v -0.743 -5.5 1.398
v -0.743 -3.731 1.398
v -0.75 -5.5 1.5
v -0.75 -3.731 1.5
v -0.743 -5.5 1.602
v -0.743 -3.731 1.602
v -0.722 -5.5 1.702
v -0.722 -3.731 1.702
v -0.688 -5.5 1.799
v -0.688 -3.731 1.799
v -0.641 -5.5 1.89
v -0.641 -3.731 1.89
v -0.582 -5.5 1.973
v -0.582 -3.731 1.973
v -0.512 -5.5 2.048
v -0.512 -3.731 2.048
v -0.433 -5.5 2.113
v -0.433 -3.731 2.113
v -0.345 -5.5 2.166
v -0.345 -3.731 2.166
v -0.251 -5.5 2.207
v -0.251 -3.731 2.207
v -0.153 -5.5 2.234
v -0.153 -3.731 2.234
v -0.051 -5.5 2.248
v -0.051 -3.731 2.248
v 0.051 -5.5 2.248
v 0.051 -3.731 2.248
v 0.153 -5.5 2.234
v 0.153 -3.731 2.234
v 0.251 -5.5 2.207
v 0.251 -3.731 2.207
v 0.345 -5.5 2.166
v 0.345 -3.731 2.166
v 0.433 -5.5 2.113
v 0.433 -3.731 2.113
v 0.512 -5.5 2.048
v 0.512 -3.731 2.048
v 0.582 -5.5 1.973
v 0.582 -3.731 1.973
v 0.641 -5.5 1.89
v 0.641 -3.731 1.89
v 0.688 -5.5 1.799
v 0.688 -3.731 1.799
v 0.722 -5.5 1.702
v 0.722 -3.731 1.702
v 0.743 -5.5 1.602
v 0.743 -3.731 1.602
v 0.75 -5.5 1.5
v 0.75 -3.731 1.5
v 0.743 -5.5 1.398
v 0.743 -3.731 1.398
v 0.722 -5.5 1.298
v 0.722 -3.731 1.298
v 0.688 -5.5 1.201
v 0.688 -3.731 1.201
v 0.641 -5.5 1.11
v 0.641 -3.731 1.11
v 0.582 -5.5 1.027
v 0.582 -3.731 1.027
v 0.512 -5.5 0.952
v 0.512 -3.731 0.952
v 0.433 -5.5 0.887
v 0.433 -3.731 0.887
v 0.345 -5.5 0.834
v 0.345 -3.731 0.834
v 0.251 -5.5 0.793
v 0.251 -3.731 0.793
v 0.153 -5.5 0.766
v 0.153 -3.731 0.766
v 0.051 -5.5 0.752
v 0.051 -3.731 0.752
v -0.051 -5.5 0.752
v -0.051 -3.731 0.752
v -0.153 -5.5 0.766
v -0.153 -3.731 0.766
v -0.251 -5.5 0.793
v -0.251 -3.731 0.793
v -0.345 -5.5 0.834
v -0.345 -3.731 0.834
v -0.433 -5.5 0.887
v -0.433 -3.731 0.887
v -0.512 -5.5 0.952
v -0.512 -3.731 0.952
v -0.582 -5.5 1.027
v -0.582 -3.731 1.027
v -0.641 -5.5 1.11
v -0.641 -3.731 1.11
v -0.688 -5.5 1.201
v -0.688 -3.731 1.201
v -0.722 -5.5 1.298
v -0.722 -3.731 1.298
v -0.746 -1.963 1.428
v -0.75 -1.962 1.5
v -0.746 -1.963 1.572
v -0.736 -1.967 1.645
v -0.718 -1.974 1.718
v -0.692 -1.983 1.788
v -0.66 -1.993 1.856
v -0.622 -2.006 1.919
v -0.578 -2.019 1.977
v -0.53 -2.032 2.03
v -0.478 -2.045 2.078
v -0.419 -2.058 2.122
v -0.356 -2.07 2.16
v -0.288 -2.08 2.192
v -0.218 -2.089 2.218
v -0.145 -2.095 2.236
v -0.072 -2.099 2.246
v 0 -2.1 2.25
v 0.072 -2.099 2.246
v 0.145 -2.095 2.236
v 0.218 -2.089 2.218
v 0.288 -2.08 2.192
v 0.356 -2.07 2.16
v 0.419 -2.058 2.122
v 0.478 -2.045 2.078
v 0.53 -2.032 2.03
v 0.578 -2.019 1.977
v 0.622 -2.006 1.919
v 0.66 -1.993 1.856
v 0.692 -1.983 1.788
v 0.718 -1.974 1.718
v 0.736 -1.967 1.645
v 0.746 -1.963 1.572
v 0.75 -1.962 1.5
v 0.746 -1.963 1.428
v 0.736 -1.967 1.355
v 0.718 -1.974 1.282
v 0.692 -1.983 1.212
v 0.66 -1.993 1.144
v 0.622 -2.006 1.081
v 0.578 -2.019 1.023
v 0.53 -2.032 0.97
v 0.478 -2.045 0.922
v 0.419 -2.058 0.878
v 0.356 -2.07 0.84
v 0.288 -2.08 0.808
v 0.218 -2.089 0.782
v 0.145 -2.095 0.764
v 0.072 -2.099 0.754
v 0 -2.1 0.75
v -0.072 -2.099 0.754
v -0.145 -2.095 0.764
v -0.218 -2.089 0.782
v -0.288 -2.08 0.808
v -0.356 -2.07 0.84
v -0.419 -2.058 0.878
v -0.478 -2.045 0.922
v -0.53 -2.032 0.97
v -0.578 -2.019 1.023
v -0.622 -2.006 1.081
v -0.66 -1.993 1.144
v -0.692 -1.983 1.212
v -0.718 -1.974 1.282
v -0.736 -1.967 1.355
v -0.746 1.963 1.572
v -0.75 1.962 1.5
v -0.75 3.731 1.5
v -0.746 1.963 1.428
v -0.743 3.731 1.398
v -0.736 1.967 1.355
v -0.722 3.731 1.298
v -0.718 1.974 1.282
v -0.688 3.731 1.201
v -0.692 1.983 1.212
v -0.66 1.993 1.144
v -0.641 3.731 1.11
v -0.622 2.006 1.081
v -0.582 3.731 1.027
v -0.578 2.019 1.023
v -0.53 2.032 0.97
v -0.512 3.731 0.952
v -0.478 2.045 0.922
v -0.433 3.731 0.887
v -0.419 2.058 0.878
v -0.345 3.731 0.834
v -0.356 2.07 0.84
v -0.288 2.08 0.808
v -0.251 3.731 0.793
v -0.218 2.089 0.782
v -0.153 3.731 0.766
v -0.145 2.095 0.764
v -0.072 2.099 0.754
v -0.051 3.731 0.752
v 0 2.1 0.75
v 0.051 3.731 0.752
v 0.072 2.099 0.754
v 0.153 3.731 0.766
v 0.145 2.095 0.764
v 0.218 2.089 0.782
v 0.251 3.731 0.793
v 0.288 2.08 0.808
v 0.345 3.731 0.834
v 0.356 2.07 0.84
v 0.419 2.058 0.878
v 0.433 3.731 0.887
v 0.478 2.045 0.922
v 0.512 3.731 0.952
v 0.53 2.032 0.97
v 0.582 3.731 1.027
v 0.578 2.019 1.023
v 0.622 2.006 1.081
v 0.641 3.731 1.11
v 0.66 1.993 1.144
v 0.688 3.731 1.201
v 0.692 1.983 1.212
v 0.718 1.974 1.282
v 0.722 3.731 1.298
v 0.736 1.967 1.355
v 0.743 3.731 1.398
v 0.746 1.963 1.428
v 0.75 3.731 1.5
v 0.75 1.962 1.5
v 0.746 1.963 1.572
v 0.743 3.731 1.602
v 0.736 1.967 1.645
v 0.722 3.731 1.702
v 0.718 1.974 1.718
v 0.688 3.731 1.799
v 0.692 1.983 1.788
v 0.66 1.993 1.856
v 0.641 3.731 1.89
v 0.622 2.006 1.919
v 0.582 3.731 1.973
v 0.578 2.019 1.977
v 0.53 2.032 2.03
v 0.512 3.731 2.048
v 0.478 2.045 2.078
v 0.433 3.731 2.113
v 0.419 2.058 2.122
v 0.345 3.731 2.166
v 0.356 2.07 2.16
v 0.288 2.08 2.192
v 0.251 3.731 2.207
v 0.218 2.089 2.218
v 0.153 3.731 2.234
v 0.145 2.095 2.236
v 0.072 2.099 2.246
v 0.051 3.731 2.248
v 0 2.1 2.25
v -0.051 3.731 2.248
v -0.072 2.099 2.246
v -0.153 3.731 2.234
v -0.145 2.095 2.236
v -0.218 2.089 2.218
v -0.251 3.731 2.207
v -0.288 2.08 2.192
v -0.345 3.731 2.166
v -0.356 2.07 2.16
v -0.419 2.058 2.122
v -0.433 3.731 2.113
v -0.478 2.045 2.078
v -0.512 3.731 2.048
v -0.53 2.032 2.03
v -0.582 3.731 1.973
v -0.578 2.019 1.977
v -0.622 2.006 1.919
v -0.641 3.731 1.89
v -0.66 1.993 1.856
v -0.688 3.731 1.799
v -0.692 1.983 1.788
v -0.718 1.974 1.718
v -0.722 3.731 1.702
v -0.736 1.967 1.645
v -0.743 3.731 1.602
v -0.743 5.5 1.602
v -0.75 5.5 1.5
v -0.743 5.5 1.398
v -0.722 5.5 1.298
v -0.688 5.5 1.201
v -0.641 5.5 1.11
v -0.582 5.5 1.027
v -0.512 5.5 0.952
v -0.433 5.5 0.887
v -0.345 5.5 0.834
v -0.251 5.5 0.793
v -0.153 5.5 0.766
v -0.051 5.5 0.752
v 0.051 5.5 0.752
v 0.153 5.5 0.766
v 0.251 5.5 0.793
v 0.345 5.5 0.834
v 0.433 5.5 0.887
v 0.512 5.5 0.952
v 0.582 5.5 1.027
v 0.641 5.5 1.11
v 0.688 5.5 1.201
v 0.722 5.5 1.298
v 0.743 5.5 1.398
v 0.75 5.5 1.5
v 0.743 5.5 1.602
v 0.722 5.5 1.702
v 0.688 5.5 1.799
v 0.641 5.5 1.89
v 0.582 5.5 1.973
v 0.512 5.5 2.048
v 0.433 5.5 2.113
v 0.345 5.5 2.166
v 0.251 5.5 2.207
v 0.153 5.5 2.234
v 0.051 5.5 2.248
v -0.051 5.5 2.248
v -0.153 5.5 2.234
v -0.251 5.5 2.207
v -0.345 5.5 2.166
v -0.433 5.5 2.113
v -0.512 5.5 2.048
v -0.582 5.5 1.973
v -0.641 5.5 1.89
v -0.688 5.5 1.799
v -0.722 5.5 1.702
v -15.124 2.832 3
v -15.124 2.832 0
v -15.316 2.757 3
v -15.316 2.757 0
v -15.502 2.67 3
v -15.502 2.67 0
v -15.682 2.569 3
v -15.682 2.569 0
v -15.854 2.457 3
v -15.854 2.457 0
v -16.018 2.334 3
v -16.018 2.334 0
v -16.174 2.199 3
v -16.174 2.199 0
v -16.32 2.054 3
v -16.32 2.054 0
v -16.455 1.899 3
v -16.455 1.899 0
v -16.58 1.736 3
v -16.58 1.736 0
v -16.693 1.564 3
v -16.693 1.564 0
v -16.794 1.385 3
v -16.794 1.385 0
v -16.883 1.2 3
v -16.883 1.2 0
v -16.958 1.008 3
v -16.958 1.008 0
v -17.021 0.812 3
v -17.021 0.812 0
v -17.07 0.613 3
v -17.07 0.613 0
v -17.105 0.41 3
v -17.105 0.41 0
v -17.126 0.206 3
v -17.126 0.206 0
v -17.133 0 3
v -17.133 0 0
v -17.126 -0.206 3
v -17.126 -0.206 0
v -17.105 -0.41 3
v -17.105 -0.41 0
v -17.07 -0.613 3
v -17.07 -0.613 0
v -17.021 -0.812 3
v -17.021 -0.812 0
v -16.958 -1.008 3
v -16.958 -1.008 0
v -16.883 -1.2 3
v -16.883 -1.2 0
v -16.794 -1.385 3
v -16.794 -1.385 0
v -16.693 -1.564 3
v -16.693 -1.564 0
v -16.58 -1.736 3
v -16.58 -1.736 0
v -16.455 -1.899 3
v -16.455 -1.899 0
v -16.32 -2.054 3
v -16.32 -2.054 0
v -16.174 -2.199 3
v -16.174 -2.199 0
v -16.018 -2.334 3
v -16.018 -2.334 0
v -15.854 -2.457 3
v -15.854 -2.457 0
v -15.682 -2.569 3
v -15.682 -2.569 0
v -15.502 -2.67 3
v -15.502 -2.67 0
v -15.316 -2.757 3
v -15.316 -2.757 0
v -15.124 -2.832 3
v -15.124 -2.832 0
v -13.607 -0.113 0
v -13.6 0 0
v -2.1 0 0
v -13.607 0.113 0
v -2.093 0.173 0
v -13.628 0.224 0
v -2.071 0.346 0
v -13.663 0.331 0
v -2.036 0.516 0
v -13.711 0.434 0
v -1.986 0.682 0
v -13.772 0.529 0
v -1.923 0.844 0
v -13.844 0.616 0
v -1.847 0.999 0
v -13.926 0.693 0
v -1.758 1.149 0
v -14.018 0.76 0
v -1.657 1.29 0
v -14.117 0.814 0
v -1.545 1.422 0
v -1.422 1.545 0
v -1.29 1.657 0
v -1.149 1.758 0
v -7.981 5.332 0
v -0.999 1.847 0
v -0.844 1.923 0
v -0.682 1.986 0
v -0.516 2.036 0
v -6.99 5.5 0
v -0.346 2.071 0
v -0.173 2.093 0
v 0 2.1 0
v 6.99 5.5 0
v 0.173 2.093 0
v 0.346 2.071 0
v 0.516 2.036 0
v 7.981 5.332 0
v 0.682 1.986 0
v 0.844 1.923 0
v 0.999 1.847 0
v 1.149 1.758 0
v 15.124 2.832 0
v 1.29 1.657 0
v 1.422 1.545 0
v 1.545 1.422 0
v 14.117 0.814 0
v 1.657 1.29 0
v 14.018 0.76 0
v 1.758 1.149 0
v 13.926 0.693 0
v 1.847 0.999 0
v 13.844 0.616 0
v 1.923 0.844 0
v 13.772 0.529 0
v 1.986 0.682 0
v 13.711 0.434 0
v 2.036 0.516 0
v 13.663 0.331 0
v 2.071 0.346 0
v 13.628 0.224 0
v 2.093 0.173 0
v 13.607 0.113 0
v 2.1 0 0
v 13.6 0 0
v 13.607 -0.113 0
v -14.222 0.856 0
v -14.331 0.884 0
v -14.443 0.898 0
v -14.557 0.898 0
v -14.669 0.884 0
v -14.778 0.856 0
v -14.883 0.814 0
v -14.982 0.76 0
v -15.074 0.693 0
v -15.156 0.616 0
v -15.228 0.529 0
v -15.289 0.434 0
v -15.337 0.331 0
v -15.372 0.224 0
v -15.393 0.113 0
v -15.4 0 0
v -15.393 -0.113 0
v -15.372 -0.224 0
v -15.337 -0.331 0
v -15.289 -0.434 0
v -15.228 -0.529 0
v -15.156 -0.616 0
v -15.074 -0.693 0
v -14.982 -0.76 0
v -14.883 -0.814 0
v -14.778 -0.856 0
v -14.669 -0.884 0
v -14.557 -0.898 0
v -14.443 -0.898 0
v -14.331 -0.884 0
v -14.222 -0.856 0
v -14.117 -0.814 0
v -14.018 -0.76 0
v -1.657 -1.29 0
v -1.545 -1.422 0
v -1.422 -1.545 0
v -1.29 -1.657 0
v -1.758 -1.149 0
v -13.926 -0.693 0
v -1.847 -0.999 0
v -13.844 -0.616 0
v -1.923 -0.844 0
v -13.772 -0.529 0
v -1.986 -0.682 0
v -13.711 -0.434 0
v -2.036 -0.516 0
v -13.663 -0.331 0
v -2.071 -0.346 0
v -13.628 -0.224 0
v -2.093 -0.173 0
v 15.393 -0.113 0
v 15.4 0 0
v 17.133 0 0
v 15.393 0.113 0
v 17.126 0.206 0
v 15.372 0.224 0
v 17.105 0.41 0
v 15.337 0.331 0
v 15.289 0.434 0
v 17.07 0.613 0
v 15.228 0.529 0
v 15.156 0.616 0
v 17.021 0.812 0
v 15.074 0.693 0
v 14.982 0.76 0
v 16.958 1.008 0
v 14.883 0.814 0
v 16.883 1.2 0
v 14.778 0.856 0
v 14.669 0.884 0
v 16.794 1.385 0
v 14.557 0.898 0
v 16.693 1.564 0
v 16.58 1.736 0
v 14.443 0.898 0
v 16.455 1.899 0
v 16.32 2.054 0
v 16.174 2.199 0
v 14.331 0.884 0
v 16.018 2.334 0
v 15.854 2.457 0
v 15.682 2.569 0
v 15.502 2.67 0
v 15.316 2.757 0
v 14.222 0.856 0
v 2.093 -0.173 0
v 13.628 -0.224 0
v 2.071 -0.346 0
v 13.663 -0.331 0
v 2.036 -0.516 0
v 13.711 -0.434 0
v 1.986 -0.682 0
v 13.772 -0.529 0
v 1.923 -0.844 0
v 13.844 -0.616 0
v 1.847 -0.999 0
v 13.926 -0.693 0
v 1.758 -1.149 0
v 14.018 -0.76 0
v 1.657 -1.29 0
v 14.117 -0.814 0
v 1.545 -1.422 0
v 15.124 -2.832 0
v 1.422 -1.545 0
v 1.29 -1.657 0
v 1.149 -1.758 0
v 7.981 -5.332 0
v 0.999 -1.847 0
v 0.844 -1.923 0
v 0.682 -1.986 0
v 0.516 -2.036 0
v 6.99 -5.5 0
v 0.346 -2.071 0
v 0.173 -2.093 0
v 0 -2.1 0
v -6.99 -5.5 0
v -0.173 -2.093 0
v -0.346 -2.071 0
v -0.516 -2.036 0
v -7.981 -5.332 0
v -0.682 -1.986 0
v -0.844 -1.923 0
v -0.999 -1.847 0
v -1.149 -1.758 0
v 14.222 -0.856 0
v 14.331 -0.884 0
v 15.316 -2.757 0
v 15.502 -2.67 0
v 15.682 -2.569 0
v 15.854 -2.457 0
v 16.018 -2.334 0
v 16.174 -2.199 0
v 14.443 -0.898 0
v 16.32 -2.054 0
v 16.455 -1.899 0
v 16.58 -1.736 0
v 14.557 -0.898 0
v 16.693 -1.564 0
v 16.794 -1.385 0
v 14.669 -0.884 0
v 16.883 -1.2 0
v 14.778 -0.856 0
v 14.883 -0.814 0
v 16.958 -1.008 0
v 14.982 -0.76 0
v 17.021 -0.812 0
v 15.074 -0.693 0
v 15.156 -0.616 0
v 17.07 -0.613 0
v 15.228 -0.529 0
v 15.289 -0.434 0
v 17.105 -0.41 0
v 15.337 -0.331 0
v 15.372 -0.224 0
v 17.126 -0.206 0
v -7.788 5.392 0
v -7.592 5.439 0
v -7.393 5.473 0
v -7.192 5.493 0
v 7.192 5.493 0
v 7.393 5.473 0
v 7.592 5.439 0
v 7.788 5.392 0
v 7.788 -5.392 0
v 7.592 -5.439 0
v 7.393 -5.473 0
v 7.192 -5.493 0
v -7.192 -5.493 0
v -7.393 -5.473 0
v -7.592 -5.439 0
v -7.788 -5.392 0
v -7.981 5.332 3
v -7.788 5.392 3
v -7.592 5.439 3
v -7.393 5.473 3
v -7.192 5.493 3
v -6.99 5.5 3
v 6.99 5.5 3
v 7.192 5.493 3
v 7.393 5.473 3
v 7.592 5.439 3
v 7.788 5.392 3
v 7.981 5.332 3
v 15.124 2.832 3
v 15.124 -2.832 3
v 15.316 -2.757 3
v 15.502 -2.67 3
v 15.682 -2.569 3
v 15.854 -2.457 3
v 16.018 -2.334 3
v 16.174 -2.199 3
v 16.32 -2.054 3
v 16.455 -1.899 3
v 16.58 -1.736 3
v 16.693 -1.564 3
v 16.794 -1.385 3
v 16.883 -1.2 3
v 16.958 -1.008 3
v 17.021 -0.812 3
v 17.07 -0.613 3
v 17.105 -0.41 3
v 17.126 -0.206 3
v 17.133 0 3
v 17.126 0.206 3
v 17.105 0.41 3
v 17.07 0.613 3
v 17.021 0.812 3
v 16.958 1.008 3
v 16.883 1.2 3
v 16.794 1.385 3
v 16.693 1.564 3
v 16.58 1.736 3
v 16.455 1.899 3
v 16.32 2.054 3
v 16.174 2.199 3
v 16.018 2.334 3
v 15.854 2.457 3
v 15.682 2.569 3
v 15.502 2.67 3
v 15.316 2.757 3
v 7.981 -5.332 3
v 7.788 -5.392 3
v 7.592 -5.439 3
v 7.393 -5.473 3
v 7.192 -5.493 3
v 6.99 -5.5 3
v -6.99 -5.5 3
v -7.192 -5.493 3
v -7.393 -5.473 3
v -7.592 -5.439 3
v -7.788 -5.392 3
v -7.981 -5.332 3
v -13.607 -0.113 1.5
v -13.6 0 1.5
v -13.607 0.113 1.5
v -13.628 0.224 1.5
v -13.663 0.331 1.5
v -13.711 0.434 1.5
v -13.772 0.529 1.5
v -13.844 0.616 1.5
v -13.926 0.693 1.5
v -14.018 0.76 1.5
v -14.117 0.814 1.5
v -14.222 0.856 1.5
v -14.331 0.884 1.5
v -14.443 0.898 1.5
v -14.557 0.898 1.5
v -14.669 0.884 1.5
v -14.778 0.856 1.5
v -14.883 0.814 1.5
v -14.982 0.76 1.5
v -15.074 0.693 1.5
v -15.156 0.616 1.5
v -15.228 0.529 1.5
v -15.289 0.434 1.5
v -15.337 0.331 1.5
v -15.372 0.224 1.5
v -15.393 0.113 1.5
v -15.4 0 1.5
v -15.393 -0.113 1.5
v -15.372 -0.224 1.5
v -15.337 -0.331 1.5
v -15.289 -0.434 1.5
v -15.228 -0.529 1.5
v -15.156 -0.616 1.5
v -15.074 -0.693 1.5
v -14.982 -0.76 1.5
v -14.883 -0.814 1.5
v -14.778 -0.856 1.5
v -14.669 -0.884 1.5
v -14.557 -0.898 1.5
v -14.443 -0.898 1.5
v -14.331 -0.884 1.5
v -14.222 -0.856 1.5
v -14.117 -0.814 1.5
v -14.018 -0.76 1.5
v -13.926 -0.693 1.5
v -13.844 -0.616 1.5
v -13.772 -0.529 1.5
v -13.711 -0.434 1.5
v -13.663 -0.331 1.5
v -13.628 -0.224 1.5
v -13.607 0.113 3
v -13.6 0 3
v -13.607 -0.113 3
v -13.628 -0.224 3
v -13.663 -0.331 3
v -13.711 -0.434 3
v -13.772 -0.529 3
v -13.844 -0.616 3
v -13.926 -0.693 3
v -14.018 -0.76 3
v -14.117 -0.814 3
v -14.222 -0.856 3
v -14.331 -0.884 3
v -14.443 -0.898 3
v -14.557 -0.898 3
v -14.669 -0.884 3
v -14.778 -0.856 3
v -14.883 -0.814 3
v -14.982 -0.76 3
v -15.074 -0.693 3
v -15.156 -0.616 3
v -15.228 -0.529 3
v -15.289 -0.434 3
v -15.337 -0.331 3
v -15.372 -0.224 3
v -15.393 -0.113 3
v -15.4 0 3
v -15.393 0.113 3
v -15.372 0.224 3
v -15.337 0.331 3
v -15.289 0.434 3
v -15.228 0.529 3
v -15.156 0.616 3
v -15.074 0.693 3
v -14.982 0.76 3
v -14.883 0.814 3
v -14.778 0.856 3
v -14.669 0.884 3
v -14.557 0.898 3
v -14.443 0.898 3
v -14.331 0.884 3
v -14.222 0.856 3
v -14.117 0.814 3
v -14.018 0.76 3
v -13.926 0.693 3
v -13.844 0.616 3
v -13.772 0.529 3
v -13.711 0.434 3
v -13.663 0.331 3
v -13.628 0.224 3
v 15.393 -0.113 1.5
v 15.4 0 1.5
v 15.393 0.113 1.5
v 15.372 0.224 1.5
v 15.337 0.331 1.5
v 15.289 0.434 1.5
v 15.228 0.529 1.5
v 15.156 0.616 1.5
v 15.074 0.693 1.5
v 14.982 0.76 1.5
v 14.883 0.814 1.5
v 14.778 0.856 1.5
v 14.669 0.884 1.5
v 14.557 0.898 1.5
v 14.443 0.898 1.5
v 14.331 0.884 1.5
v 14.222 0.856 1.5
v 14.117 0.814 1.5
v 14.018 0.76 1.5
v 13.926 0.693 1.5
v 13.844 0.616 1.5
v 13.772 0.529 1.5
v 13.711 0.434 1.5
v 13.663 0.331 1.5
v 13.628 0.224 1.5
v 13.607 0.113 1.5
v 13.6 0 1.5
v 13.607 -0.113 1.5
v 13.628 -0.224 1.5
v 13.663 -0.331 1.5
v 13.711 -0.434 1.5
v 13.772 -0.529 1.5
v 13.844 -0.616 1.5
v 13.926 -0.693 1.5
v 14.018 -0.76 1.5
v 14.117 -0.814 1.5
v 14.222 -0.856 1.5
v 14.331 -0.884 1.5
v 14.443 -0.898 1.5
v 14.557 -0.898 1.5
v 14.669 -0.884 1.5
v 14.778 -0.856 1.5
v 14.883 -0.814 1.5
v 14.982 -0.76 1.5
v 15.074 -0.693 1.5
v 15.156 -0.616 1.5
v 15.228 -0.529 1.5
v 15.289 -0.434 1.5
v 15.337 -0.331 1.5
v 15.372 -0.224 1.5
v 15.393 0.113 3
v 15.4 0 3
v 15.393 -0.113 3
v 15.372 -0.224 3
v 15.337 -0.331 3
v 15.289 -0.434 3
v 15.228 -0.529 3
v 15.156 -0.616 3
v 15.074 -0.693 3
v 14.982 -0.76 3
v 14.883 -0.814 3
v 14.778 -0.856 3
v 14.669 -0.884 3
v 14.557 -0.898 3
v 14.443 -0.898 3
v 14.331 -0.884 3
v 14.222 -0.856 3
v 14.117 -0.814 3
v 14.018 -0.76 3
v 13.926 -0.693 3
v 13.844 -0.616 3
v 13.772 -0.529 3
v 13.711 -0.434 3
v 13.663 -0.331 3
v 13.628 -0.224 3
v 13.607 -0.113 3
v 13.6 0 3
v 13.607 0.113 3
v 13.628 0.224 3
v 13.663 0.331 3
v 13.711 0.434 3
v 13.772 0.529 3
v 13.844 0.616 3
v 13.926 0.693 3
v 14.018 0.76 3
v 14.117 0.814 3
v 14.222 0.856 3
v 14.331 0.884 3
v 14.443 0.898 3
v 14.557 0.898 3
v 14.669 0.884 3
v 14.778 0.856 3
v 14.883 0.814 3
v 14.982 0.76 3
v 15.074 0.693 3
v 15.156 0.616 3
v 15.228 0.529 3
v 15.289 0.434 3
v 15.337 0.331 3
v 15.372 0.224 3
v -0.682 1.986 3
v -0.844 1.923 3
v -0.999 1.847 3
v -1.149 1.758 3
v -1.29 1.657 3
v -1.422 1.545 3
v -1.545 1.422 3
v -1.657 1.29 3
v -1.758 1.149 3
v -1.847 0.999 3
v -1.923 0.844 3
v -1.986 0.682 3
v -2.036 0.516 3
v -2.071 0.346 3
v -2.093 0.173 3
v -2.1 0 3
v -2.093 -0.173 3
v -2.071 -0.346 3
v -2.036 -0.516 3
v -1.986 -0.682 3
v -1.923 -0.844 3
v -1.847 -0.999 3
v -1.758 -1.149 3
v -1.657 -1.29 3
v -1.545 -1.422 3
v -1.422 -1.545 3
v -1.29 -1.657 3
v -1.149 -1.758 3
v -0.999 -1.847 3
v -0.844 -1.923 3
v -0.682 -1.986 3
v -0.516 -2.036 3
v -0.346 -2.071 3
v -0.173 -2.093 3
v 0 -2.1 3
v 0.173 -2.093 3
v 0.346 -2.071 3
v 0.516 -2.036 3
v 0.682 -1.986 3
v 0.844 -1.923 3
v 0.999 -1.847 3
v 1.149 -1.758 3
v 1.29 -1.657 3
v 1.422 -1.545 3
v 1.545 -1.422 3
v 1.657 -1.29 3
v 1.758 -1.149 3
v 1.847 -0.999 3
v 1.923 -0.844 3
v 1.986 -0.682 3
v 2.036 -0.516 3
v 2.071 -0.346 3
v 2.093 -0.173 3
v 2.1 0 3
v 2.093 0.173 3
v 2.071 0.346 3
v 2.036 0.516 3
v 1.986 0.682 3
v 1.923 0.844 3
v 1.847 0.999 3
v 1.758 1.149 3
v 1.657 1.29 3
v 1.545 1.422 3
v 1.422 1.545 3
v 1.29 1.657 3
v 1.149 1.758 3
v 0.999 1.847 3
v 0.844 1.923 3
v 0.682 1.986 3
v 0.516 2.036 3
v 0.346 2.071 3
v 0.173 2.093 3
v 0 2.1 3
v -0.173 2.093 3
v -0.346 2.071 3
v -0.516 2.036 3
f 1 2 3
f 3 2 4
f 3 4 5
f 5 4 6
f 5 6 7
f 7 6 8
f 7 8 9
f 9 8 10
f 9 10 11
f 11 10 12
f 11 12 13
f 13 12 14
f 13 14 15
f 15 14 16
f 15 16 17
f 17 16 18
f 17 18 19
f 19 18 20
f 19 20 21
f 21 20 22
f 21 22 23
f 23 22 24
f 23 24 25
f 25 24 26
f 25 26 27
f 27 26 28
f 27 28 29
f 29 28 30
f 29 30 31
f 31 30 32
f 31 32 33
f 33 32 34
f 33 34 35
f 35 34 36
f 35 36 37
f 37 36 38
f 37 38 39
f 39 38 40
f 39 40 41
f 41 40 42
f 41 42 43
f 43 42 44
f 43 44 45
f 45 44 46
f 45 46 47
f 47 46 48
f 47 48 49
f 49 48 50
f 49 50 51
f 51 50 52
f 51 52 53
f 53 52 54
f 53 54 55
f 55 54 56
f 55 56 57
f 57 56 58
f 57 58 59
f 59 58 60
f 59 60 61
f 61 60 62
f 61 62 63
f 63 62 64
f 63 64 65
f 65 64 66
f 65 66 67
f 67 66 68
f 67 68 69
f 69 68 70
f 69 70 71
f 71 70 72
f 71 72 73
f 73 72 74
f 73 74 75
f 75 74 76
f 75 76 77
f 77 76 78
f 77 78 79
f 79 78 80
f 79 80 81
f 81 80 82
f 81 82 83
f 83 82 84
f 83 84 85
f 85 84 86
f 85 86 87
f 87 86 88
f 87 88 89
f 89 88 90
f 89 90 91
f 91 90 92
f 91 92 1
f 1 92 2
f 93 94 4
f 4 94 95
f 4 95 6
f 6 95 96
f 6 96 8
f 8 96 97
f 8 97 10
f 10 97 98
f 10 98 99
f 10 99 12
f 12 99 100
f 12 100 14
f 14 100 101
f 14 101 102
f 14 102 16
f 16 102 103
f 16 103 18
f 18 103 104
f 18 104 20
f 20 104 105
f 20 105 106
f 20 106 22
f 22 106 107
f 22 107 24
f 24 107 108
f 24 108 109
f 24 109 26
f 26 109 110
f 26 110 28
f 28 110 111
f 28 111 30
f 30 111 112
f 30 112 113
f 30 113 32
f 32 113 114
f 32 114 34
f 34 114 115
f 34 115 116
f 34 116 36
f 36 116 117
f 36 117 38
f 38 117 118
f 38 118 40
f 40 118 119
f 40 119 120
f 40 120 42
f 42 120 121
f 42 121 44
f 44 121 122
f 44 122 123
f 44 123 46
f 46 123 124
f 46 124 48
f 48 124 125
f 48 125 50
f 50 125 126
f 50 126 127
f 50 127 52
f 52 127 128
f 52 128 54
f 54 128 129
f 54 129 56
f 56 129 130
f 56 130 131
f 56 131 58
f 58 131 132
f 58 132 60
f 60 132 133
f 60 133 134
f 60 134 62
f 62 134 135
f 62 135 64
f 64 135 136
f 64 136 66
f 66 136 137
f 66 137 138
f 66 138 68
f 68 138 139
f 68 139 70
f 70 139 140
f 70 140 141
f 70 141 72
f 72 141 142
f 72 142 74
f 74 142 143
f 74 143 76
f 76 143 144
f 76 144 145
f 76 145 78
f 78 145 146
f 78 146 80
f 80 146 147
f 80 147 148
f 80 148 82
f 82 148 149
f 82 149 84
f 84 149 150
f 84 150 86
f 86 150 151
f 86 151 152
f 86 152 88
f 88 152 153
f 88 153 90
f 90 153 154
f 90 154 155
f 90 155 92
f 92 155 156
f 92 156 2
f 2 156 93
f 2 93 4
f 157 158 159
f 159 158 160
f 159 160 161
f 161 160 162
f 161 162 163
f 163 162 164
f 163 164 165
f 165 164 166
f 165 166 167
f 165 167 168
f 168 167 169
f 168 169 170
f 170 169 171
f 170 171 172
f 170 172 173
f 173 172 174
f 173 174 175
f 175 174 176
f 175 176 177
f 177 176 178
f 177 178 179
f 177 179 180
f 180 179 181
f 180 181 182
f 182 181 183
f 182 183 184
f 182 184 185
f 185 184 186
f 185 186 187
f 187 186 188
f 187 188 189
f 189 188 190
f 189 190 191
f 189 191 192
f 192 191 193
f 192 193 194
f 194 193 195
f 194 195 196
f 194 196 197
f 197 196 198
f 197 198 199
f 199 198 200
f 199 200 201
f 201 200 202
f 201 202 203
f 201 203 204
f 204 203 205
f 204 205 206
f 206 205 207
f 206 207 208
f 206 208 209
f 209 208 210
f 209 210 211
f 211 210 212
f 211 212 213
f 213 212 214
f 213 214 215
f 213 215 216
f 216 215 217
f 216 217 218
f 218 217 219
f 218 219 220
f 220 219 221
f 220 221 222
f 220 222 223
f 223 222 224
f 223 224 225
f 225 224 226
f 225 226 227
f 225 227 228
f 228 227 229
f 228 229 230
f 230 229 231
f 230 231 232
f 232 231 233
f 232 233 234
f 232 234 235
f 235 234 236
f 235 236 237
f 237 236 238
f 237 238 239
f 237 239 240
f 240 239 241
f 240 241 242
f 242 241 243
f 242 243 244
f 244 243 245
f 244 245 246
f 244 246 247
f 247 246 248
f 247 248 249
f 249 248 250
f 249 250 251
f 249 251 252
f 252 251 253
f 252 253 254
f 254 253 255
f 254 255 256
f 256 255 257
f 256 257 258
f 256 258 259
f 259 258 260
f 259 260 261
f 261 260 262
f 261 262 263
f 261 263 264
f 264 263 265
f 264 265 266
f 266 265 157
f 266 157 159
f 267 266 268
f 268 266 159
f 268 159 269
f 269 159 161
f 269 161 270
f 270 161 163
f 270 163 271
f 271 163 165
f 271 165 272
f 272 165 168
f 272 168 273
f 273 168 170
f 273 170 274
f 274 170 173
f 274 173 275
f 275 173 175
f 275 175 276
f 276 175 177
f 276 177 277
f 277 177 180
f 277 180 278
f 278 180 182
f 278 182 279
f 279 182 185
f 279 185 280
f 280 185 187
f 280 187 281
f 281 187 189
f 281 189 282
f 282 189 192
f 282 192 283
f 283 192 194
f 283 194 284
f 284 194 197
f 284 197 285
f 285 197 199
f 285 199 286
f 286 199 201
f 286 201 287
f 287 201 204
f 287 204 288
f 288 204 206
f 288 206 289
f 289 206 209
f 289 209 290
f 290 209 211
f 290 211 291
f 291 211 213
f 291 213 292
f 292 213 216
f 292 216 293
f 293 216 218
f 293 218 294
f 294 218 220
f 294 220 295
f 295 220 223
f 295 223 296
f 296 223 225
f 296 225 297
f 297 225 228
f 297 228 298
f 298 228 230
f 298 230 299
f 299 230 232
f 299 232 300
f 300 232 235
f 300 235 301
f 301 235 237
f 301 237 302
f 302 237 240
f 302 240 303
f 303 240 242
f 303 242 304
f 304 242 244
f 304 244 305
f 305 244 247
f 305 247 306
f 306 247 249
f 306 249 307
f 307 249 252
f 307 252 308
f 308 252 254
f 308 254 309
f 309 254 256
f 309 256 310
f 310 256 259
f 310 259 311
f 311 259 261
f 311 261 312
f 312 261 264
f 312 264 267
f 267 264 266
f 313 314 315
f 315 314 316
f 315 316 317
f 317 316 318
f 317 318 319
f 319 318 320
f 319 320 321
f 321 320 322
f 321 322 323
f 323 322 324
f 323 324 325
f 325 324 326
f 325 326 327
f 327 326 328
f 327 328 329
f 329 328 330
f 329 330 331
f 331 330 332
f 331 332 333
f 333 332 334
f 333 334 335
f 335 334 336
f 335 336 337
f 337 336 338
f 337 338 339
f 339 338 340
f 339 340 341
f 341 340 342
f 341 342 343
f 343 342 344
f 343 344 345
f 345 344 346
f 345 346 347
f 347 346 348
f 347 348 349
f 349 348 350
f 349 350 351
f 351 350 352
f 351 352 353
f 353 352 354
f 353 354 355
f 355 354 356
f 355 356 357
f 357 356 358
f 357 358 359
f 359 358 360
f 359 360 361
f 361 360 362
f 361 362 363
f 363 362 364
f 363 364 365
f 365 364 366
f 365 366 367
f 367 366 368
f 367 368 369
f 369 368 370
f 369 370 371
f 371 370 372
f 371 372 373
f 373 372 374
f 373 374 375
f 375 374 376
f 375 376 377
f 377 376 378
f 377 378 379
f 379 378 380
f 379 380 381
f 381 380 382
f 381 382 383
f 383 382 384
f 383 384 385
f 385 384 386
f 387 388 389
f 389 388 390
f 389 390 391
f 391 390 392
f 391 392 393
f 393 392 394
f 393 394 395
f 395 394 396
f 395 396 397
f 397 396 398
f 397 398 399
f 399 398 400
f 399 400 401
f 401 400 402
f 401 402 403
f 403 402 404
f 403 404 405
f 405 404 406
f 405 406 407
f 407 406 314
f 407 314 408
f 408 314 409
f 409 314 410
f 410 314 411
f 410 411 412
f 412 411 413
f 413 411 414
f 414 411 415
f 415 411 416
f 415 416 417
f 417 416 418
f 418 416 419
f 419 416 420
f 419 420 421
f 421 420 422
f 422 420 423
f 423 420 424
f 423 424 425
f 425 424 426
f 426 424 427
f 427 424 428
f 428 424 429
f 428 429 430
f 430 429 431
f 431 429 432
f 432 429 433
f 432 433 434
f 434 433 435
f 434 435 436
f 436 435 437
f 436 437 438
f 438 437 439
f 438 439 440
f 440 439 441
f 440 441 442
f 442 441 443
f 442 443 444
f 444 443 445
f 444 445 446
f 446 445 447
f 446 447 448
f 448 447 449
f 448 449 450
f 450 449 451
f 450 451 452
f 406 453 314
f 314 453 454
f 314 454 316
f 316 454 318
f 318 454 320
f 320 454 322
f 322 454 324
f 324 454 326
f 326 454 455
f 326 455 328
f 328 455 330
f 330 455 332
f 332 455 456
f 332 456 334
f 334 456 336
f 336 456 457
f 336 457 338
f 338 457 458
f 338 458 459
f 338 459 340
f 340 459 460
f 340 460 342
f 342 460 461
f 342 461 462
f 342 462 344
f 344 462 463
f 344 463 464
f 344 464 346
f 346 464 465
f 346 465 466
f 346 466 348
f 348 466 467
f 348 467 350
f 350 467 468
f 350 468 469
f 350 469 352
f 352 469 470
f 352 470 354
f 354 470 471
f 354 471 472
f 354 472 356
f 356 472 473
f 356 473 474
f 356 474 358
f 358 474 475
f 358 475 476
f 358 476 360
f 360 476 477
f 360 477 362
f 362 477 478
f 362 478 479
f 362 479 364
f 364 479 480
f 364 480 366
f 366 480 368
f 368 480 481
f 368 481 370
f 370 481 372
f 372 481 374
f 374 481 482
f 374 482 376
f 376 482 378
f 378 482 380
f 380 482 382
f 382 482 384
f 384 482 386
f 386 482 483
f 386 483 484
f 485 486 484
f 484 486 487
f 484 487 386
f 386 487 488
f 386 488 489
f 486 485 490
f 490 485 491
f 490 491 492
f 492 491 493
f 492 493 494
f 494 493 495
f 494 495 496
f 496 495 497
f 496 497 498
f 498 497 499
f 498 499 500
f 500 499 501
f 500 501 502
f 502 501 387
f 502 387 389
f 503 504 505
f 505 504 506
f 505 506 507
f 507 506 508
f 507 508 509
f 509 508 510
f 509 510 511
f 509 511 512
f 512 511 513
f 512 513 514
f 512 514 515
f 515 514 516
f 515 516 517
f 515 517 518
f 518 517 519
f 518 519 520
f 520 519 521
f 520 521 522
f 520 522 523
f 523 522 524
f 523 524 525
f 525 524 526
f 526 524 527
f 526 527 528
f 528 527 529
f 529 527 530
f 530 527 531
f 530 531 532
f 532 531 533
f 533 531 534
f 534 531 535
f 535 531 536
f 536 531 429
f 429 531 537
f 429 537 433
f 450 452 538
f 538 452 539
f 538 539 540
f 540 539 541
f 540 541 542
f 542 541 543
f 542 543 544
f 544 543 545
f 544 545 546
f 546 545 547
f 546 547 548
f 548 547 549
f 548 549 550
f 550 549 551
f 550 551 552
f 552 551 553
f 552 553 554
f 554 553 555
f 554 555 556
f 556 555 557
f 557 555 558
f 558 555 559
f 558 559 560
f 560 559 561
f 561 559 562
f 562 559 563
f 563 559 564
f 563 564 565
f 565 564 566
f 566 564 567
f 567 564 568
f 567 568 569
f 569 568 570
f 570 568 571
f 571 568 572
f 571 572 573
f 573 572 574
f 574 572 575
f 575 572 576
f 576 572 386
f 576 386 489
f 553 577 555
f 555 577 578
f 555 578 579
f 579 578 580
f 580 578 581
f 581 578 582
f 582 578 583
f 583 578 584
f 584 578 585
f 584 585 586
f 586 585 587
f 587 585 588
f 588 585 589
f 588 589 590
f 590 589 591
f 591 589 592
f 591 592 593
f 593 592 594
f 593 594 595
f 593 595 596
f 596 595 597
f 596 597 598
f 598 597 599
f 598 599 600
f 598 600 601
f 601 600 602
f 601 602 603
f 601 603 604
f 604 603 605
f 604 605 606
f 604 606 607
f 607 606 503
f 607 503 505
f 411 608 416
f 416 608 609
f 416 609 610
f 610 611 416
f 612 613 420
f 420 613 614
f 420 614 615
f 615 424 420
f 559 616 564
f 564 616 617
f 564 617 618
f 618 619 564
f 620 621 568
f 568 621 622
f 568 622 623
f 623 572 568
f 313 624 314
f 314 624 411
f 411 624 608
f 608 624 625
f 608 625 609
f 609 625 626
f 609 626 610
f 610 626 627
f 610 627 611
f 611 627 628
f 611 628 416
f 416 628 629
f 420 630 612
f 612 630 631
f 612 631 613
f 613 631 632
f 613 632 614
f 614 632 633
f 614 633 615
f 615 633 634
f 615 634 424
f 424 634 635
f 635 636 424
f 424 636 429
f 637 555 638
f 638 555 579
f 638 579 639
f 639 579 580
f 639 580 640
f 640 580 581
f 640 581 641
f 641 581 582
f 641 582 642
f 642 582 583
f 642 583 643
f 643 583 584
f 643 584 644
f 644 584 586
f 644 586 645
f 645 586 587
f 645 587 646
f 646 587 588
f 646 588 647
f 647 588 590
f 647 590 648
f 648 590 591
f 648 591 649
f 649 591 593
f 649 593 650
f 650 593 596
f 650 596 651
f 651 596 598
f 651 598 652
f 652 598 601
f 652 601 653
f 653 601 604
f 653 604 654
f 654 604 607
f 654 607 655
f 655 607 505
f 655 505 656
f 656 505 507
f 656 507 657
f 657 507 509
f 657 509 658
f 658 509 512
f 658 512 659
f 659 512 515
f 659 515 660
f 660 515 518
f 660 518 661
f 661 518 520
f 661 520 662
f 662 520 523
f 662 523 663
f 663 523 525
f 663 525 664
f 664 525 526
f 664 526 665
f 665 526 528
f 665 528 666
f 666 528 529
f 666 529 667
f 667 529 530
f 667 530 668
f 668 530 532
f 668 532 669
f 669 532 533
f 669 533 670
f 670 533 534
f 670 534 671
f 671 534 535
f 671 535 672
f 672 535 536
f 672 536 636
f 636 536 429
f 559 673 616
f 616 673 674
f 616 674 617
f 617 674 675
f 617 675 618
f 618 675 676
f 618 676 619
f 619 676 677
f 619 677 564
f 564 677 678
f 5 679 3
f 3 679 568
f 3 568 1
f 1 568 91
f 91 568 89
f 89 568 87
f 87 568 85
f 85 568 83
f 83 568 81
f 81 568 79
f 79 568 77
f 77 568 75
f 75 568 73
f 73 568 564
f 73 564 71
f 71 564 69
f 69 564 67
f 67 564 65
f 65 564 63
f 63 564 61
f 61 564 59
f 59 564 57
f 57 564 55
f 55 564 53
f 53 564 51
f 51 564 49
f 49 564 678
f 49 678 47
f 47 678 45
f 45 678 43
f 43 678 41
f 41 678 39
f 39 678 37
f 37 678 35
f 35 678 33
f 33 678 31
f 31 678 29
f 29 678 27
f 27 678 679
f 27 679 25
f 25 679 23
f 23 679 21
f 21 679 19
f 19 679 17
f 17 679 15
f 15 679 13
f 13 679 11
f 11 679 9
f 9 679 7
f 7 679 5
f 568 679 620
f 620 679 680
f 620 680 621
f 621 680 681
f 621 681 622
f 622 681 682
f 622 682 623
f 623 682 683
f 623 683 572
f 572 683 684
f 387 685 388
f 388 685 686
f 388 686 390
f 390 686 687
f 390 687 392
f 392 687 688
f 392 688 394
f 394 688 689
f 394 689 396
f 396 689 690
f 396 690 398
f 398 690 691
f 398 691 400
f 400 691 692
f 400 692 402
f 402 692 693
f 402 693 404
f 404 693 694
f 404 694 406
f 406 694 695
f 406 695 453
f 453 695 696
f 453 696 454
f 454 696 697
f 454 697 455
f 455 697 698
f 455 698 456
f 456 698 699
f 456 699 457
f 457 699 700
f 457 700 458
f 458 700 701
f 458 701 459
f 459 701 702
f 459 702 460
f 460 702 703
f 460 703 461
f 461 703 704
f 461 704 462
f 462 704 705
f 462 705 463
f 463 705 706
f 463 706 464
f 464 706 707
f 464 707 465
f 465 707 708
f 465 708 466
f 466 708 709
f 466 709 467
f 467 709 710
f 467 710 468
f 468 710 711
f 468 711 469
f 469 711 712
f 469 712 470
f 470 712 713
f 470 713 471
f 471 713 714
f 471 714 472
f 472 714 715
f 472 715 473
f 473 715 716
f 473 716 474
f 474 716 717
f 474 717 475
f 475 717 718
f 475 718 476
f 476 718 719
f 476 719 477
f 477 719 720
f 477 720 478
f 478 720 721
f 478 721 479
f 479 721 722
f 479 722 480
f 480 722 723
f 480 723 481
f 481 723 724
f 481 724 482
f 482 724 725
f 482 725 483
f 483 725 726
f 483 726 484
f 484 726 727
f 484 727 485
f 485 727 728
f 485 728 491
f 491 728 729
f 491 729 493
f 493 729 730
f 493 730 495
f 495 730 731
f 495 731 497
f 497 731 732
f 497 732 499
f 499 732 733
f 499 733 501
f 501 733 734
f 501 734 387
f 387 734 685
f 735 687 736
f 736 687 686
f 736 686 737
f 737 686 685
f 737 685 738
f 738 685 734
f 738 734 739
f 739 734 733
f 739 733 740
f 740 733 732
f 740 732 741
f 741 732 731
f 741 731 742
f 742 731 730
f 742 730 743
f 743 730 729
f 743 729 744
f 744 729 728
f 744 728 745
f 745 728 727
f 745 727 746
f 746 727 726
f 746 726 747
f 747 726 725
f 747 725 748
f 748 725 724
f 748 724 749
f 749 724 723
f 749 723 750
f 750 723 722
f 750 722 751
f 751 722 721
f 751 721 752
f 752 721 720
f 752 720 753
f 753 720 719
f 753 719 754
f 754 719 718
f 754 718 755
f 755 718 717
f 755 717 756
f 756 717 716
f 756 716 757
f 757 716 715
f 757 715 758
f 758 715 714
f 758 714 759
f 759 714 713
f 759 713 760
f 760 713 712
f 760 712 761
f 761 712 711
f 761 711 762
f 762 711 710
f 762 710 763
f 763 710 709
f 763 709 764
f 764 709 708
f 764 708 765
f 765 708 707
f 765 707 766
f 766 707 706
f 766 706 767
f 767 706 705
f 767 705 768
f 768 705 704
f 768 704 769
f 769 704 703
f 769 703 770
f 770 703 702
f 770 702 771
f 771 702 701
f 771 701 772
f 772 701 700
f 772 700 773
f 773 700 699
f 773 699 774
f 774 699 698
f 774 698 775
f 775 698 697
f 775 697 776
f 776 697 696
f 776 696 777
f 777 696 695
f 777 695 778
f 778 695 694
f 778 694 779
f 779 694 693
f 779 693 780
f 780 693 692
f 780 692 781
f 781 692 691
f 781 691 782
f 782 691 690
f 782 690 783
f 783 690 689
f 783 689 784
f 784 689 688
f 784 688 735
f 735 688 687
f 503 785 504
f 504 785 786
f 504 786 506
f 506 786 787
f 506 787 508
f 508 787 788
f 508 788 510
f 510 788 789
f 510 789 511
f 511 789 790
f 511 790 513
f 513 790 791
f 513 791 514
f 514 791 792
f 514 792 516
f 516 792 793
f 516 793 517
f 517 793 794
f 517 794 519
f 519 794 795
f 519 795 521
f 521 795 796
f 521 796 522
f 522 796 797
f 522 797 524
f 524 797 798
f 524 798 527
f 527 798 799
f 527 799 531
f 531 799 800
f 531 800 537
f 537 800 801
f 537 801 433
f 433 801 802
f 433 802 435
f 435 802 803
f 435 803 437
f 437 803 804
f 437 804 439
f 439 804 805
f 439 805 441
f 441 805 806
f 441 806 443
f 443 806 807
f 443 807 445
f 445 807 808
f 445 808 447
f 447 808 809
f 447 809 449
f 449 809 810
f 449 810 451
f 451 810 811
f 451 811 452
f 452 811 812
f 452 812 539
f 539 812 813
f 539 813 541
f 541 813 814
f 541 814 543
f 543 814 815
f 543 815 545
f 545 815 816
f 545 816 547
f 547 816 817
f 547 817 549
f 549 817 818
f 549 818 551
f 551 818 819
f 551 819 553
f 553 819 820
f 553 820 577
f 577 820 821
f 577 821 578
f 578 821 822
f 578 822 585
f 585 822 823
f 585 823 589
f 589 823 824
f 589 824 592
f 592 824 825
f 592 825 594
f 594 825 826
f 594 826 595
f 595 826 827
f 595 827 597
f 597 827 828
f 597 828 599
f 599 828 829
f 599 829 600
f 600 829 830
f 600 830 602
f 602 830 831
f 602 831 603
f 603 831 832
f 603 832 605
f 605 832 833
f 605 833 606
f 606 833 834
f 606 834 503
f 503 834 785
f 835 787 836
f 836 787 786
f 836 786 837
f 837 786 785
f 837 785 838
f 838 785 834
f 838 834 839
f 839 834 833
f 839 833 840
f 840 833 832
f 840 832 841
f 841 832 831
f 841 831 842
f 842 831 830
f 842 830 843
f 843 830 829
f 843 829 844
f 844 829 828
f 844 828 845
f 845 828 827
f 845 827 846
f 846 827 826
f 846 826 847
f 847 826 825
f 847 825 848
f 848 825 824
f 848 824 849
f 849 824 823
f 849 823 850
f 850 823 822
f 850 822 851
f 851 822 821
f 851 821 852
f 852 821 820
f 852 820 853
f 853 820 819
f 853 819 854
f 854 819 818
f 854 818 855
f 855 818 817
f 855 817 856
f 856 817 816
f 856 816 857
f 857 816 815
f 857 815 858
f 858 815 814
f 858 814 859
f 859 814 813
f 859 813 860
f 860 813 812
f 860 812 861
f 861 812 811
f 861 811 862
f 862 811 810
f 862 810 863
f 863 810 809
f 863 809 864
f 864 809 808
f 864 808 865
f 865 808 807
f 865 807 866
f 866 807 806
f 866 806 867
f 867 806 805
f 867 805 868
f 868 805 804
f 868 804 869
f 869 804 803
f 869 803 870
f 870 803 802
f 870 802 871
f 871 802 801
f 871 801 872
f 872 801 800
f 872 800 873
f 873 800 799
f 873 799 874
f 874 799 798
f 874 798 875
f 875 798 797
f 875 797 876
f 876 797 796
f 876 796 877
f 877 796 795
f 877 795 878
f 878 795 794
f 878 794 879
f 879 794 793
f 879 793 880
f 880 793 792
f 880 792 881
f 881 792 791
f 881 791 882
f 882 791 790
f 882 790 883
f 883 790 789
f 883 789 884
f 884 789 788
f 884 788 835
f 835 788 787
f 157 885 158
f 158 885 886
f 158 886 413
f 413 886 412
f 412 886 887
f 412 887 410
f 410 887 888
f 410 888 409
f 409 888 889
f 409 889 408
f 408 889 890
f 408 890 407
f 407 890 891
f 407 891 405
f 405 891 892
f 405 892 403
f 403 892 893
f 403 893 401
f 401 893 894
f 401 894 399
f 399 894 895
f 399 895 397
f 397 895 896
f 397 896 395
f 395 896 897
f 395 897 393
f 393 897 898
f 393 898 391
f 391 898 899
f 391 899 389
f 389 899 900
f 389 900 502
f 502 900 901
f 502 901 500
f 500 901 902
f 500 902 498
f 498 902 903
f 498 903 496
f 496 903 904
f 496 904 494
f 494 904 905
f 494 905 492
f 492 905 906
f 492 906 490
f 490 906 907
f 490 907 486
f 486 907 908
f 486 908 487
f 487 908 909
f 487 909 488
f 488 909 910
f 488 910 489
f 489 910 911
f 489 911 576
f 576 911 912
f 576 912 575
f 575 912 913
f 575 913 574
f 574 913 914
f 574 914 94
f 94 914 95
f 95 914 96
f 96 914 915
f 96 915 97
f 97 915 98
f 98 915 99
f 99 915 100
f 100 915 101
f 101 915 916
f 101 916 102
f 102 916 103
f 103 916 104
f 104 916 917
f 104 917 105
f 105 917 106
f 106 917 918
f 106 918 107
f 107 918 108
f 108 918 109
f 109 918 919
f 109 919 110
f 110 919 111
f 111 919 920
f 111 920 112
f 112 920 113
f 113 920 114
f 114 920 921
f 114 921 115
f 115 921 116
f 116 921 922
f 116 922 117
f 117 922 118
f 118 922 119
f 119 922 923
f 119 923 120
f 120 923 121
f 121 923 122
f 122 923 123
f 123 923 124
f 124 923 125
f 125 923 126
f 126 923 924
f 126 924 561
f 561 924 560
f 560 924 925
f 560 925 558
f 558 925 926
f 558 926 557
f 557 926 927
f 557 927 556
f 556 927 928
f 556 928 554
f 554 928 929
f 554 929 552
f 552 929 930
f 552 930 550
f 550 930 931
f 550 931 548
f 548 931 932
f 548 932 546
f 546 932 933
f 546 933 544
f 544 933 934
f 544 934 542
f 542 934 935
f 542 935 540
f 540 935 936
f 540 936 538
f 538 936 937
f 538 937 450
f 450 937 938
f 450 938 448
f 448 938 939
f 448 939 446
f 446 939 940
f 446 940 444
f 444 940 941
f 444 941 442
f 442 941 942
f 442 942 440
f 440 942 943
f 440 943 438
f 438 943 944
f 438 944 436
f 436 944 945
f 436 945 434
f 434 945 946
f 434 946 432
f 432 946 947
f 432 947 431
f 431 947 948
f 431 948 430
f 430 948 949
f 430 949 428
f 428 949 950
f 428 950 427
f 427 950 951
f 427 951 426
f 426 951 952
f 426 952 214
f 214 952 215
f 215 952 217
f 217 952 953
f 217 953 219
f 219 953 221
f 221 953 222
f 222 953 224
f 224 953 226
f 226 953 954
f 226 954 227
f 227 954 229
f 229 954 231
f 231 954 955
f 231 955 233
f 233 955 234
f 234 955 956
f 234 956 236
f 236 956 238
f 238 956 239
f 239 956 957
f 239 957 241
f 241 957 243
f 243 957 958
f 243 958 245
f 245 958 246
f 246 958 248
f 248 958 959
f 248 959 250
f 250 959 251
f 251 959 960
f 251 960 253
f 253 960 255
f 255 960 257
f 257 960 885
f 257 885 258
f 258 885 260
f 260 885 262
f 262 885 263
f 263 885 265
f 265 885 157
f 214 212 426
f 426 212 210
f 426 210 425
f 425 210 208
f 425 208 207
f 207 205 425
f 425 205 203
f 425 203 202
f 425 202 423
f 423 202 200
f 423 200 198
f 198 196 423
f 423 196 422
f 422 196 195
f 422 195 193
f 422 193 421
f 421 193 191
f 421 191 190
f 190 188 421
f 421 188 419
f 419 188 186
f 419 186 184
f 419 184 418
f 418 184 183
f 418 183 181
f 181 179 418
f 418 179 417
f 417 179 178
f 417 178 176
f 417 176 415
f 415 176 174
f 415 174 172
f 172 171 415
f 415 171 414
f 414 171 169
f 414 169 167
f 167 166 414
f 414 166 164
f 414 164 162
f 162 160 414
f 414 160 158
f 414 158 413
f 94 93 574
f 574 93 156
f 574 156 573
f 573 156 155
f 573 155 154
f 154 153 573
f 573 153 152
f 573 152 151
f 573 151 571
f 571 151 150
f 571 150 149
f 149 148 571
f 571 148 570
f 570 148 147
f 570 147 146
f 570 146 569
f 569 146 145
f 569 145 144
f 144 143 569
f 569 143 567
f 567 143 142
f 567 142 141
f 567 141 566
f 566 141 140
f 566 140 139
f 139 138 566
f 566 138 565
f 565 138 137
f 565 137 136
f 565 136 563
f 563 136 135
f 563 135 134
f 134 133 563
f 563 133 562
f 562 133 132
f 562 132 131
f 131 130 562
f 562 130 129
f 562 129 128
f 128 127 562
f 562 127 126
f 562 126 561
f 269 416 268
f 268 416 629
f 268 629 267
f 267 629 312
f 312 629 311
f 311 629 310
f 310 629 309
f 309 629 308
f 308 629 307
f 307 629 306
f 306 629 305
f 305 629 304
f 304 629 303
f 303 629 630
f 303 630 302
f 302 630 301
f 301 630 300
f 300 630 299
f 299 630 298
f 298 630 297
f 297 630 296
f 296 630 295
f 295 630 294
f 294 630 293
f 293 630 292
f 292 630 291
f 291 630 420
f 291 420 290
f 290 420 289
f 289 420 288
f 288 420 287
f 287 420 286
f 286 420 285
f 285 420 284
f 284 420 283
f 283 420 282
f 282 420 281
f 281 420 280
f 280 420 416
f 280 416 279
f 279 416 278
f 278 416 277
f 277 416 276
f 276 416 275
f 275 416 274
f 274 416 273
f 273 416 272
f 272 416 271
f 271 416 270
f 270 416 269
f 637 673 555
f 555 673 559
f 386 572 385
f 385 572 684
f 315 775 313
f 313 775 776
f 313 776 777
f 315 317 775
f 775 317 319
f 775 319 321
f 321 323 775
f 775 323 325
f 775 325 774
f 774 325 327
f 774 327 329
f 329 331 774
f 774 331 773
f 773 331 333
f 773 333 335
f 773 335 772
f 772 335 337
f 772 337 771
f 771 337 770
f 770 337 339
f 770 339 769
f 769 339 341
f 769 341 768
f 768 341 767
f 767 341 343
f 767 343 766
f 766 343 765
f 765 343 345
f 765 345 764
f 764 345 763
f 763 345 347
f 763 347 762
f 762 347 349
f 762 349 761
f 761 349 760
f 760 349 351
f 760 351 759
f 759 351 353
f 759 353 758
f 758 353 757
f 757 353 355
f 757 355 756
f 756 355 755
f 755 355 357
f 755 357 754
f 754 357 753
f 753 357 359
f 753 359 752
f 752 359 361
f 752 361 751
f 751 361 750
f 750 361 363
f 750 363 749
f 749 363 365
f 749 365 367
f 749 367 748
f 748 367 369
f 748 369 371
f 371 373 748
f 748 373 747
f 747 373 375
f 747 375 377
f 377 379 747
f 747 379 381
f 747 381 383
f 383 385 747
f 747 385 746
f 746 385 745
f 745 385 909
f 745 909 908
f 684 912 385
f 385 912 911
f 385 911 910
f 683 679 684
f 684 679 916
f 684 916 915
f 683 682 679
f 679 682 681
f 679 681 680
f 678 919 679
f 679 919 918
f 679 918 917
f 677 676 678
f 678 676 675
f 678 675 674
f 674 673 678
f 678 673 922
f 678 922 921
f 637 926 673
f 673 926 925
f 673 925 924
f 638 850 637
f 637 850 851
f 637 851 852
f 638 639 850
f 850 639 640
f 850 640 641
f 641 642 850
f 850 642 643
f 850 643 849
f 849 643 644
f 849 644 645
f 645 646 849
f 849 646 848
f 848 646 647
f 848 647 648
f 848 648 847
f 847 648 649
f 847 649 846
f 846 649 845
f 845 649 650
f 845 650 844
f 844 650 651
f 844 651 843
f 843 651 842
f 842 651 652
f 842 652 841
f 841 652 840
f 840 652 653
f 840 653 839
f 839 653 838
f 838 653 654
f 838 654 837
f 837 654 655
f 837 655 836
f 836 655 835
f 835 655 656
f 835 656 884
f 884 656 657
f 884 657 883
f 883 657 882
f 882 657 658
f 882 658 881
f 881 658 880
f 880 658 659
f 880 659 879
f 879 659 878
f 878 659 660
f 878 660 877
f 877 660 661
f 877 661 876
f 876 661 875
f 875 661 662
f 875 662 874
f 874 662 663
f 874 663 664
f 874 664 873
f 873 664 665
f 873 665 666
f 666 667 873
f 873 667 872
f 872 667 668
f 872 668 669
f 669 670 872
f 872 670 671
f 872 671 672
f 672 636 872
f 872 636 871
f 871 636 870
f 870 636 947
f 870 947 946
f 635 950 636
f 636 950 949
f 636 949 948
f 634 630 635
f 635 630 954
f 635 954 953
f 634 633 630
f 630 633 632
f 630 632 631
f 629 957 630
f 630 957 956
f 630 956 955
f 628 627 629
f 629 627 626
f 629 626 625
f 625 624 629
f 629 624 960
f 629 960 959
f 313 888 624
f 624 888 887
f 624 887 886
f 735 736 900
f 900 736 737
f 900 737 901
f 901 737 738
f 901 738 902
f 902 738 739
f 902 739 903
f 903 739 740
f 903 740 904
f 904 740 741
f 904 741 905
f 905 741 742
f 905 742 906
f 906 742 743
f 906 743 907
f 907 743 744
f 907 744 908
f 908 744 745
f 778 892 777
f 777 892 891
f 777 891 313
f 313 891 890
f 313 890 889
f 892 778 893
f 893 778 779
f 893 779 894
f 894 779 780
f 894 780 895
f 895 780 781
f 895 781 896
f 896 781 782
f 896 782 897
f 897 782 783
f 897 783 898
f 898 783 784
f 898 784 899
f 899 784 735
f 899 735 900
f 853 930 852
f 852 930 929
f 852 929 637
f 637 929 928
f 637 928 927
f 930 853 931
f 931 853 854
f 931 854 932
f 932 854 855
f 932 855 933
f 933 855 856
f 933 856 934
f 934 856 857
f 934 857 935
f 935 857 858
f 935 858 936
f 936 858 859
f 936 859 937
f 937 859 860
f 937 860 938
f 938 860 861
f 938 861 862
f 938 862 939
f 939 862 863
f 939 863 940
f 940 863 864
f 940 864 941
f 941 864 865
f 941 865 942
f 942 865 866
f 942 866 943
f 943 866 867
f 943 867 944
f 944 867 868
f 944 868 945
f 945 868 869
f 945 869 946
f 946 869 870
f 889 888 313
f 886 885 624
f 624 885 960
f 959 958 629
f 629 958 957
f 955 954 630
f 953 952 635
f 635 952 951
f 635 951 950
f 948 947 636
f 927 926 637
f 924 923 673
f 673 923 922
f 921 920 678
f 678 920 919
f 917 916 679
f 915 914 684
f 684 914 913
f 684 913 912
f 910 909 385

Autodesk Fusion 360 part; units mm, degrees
sketch "Main" plane through (0, 0, 0) normal (0, 0, 1) x (1, 0, 0)
  line L0 (-7.5, 5.5) -> (7.5, 5.5)
  line L1 (7.5, 5.5) -> (17.5, 2)
  line L2 (17.5, 2) -> (17.5, -2)
  line L3 (17.5, -2) -> (7.5, -5.5)
  line L4 (7.5, -5.5) -> (-7.5, -5.5)
  line L5 (-7.5, -5.5) -> (-17.5, -2)
  line L6 (-17.5, -2) -> (-17.5, 2)
  line L7 (-17.5, 2) -> (-7.5, 5.5)
  circle A0 centre (0, 0) radius 2.1
  dimension "d1" = 4.2
  dimension "d2" = 15
  dimension "d3" = 15
  dimension "d4" = 7.5
  dimension "d5" = 5.5
  dimension "d6" = 5.5
  dimension "d7" = 10
  dimension "d8" = 10
  dimension "d9" = 4
  dimension "d10" = 4
  dimension "d11" = 3.5
extrude "Extrude1" add sketch "Main" along normal blind 3
sketch "Face holes" plane through (0, 0, 3) normal (0, 0, 1) x (-1, 0, 0)
  circle A0 centre (0, 0) radius 2.1
  line L0 (17.5, -2) -> (17.5, 2)
  line L1 (17.5, 2) -> (7.5, 5.5)
  line L2 (7.5, 5.5) -> (-7.5, 5.5)
  line L3 (-7.5, 5.5) -> (-17.5, 2)
  line L4 (-17.5, 2) -> (-17.5, -2)
  line L5 (-17.5, -2) -> (-7.5, -5.5)
  line L6 (-7.5, -5.5) -> (7.5, -5.5)
  line L7 (7.5, -5.5) -> (17.5, -2)
  circle A1 centre (14.5, 0) radius 0.9
  circle A2 centre (-14.5, 0) radius 0.9
  dimension "d14" = 1.8
  dimension "d15" = 1.8
  dimension "d16" = 29
  dimension "d18" = 14.5
extrude "Extrude2" cut sketch "Face holes" against normal blind 3 contours A1 | A2
fillet "Fillet1" radius 3 8 edges at (-17.5, -2, 1.5) (-7.5, -5.5, 1.5) (7.5, -5.5, 1.5) (17.5, -2, 1.5) (17.5, 2, 1.5) (7.5, 5.5, 1.5) (-7.5, 5.5, 1.5) (-17.5, 2, 1.5)
sketch "Hole Pin" plane through (0, -5.5, 0) normal (0, -1, 0) x (1, 0, 0)
  line L0 (6.9902, 0) -> (6.9902, 3)
  line L1 (6.9902, 3) -> (-6.9902, 3)
  line L2 (-6.9902, 3) -> (-6.9902, 0)
  line L3 (-6.9902, 0) -> (6.9902, 0)
  circle A0 centre (0, 1.5) radius 0.75
  dimension "d23" = 1.5
  dimension "d24" = 1.5
extrude "Extrude3" cut sketch "Hole Pin" against normal blind 17 contours A0
